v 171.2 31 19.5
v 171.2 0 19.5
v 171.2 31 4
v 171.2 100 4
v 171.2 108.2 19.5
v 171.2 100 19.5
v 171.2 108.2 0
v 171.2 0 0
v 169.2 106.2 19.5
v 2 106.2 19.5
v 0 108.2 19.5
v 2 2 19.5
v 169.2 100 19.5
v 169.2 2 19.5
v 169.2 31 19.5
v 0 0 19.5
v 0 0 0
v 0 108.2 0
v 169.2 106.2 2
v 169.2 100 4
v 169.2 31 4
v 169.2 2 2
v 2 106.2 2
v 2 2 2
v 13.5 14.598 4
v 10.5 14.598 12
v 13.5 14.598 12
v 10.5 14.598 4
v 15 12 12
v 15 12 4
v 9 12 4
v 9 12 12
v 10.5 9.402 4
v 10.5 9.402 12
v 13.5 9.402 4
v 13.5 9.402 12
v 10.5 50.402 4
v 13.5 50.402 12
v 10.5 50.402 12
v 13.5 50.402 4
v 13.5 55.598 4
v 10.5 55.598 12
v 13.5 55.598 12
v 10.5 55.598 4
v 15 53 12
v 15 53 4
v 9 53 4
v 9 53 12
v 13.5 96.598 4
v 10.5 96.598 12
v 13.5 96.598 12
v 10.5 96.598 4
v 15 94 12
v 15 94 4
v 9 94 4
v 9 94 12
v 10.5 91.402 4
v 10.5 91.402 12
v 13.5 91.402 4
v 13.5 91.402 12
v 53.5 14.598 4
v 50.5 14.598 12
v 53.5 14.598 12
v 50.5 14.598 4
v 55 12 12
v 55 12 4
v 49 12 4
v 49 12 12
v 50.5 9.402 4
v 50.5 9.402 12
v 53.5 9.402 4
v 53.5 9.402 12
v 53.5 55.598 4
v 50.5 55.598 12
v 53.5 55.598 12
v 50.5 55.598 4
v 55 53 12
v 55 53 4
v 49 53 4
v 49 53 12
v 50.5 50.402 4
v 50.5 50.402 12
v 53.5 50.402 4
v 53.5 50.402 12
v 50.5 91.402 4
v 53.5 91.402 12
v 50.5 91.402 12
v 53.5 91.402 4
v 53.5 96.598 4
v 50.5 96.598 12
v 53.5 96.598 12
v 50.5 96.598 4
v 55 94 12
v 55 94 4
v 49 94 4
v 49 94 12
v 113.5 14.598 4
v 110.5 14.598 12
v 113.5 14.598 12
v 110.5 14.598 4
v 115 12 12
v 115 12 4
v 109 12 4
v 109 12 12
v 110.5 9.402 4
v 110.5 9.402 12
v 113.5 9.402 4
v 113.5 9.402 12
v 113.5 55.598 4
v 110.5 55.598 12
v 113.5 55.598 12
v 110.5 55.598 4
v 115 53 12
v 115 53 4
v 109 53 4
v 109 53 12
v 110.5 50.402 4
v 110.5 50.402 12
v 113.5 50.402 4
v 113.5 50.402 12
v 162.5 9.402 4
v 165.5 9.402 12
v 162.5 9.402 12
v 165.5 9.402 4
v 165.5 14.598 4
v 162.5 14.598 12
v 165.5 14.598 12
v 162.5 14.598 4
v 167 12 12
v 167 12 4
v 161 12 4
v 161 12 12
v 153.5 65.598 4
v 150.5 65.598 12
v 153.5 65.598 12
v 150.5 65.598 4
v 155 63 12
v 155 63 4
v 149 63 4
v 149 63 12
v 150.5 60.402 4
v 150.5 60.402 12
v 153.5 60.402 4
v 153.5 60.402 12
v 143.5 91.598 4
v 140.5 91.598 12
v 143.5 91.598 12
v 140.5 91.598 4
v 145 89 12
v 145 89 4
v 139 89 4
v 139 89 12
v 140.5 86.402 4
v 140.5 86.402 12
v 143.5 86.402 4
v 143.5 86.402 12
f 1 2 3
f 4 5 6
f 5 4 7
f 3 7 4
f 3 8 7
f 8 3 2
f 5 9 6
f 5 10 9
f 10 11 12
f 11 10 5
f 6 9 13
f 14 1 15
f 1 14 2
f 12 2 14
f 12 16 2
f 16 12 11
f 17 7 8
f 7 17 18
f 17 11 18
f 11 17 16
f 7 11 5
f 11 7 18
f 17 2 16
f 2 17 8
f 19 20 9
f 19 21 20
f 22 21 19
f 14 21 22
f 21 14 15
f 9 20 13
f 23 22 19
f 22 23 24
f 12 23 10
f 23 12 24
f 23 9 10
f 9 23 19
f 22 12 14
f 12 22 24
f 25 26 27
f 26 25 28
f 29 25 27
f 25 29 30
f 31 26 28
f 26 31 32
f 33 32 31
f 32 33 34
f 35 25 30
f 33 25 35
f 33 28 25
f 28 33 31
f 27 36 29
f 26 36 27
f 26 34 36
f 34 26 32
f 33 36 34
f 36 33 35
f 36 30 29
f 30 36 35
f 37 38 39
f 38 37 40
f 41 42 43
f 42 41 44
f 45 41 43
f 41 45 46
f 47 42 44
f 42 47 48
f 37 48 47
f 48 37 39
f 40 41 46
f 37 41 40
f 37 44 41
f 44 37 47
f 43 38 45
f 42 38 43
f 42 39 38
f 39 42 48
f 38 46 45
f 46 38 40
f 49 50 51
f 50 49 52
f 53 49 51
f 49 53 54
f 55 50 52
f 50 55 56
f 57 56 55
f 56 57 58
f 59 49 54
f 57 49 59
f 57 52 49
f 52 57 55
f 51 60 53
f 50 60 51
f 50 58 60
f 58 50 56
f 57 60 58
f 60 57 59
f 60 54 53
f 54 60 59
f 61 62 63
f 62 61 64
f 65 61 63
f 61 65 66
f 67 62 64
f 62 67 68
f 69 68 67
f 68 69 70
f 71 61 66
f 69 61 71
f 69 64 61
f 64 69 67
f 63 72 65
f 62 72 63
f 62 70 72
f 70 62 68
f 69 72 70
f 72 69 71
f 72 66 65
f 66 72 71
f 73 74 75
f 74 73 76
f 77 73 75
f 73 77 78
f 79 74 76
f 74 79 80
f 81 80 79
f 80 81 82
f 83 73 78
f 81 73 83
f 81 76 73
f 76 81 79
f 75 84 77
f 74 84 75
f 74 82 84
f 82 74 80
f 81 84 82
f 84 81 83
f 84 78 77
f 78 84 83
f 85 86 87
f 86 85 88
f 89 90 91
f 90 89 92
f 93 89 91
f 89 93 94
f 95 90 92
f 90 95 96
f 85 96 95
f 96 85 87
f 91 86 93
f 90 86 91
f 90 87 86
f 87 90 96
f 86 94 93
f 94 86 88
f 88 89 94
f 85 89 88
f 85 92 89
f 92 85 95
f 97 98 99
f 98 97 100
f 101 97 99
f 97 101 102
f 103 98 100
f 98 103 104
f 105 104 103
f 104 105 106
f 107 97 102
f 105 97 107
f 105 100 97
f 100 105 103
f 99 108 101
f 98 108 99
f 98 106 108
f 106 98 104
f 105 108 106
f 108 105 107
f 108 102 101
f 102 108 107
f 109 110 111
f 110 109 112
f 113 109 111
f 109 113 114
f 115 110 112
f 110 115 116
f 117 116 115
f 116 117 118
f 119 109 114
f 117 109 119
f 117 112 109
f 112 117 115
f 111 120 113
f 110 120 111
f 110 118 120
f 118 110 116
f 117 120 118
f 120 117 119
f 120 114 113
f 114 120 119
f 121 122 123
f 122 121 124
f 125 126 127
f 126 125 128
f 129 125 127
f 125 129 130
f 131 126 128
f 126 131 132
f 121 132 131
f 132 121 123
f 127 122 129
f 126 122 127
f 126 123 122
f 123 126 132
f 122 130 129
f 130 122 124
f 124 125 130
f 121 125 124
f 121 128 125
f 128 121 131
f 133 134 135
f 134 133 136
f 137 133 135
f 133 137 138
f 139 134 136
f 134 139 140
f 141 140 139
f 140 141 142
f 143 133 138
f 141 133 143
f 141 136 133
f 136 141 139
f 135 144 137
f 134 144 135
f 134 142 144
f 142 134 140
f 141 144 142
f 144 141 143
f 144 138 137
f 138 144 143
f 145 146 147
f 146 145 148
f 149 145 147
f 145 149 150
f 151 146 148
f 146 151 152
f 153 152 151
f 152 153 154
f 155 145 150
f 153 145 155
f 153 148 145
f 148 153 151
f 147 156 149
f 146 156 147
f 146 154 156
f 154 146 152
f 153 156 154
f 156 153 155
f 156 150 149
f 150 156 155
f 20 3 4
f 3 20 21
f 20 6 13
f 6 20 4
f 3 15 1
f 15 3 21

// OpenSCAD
// Generated by SolidPython 1.0.4 on 2020-12-06 15:42:23


difference() {
	union() {
		difference() {
			cube(size = [171.2000000000, 108.2000000000, 19.5000000000]);
			translate(v = [0, 0, 2.0000000000]) {
				translate(v = [2.0000000000, 0, 0]) {
					translate(v = [0, 2.0000000000, 0]) {
						cube(size = [167.2000000000, 104.2000000000, 19.5000000000]);
					}
				}
			}
		}
		translate(v = [0, 0, 4.0000000000]) {
			translate(v = [12.0000000000, 0, 0]) {
				translate(v = [0, 12.0000000000, 0]) {
					cylinder($fn = 6, d = 6.0000000000, h = 8.0000000000);
				}
			}
		}
		translate(v = [0, 0, 4.0000000000]) {
			translate(v = [12.0000000000, 0, 0]) {
				translate(v = [0, 53.0000000000, 0]) {
					cylinder($fn = 6, d = 6.0000000000, h = 8.0000000000);
				}
			}
		}
		translate(v = [0, 0, 4.0000000000]) {
			translate(v = [12.0000000000, 0, 0]) {
				translate(v = [0, 94.0000000000, 0]) {
					cylinder($fn = 6, d = 6.0000000000, h = 8.0000000000);
				}
			}
		}
		translate(v = [0, 0, 4.0000000000]) {
			translate(v = [52.0000000000, 0, 0]) {
				translate(v = [0, 12.0000000000, 0]) {
					cylinder($fn = 6, d = 6.0000000000, h = 8.0000000000);
				}
			}
		}
		translate(v = [0, 0, 4.0000000000]) {
			translate(v = [52.0000000000, 0, 0]) {
				translate(v = [0, 53.0000000000, 0]) {
					cylinder($fn = 6, d = 6.0000000000, h = 8.0000000000);
				}
			}
		}
		translate(v = [0, 0, 4.0000000000]) {
			translate(v = [52.0000000000, 0, 0]) {
				translate(v = [0, 94.0000000000, 0]) {
					cylinder($fn = 6, d = 6.0000000000, h = 8.0000000000);
				}
			}
		}
		translate(v = [0, 0, 4.0000000000]) {
			translate(v = [112.0000000000, 0, 0]) {
				translate(v = [0, 12.0000000000, 0]) {
					cylinder($fn = 6, d = 6.0000000000, h = 8.0000000000);
				}
			}
		}
		translate(v = [0, 0, 4.0000000000]) {
			translate(v = [112.0000000000, 0, 0]) {
				translate(v = [0, 53.0000000000, 0]) {
					cylinder($fn = 6, d = 6.0000000000, h = 8.0000000000);
				}
			}
		}
		translate(v = [0, 0, 4.0000000000]) {
			translate(v = [164.0000000000, 0, 0]) {
				translate(v = [0, 12.0000000000, 0]) {
					cylinder($fn = 6, d = 6.0000000000, h = 8.0000000000);
				}
			}
		}
		translate(v = [0, 0, 4.0000000000]) {
			translate(v = [152.0000000000, 0, 0]) {
				translate(v = [0, 63.0000000000, 0]) {
					cylinder($fn = 6, d = 6.0000000000, h = 8.0000000000);
				}
			}
		}
		translate(v = [0, 0, 4.0000000000]) {
			translate(v = [142.0000000000, 0, 0]) {
				translate(v = [0, 89.0000000000, 0]) {
					cylinder($fn = 6, d = 6.0000000000, h = 8.0000000000);
				}
			}
		}
	}
	translate(v = [0, 0, 4.0000000000]) {
		translate(v = [169.2000000000, 0, 0]) {
			translate(v = [0, 31.0000000000, 0]) {
				cube(size = [2.0000000000, 69.0000000000, 19.5000000000]);
			}
		}
	}
}
/***********************************************
*********      SolidPython code:      **********
************************************************
 
import solid as s
import solid.utils as u

width = 165.0
height = 102.0
depth = 15.5

# lug_height = 2.
# lug_width = 8.0
# lug_centre = lug_width / 2
# lug_hex_dia = 6.0

wall_width = 2.0
wall_width2 = wall_width * 2
wedge_width = 1.0
wedge_width2 = wedge_width * 2
nt = 0.1
nt2 = nt * 2
wedge_depth = 6.5
screen_bezel = 4.0

total_width = width + wedge_width2 + wall_width2 + nt2
total_height = height + wedge_width2 + wall_width2 + nt2
base_supports = [
    (wall_width + 10, wall_width + 10),
    (wall_width + 10, wall_width + height / 2),
    (wall_width + 10, wall_width + height - 10),
    (wall_width + 50, wall_width + 10),
    (wall_width + 50, wall_width + height / 2),
    (wall_width + 50, wall_width + height - 10),
    (wall_width + 110, wall_width + 10),
    (wall_width + 110, wall_width + height / 2),
    (wall_width + 162, wall_width + 10),
    (wall_width + 150, wall_width + 61),
    (wall_width + 140, wall_width + 87),
]
support_dia = 6.0
support_height = 8.0
ports_start = 29.0
ports_end = 98.0
ports_depth = 2.0

base_depth = 17.5 + wall_width

base = s.cube(size=[total_width, total_height, base_depth])
# base cavity
base -= u.up(wall_width)(u.right(wall_width)(u.forward(wall_width)(
    s.cube(size=[
        total_width - wall_width2,
        total_height - wall_width2,
        base_depth
    ])
)))
# base supports
for x, y in base_supports:
    base += u.up(wall_width2)(u.right(x)(u.forward(y)(
        s.cylinder(d=support_dia, h=support_height, segments=6)
    )))
# base_ports
base -= u.up(wall_width + ports_depth)(u.right(total_width - wall_width)(
    u.forward(wall_width + ports_start)(
        s.cube(size=[wall_width, ports_end - ports_start, base_depth])
)))

def render(suffix, final):
    suffix += '.scad'
    s.scad_render_to_file(final, __file__.replace('.py', suffix))

render(
    '',
    base
) 
 
************************************************/
